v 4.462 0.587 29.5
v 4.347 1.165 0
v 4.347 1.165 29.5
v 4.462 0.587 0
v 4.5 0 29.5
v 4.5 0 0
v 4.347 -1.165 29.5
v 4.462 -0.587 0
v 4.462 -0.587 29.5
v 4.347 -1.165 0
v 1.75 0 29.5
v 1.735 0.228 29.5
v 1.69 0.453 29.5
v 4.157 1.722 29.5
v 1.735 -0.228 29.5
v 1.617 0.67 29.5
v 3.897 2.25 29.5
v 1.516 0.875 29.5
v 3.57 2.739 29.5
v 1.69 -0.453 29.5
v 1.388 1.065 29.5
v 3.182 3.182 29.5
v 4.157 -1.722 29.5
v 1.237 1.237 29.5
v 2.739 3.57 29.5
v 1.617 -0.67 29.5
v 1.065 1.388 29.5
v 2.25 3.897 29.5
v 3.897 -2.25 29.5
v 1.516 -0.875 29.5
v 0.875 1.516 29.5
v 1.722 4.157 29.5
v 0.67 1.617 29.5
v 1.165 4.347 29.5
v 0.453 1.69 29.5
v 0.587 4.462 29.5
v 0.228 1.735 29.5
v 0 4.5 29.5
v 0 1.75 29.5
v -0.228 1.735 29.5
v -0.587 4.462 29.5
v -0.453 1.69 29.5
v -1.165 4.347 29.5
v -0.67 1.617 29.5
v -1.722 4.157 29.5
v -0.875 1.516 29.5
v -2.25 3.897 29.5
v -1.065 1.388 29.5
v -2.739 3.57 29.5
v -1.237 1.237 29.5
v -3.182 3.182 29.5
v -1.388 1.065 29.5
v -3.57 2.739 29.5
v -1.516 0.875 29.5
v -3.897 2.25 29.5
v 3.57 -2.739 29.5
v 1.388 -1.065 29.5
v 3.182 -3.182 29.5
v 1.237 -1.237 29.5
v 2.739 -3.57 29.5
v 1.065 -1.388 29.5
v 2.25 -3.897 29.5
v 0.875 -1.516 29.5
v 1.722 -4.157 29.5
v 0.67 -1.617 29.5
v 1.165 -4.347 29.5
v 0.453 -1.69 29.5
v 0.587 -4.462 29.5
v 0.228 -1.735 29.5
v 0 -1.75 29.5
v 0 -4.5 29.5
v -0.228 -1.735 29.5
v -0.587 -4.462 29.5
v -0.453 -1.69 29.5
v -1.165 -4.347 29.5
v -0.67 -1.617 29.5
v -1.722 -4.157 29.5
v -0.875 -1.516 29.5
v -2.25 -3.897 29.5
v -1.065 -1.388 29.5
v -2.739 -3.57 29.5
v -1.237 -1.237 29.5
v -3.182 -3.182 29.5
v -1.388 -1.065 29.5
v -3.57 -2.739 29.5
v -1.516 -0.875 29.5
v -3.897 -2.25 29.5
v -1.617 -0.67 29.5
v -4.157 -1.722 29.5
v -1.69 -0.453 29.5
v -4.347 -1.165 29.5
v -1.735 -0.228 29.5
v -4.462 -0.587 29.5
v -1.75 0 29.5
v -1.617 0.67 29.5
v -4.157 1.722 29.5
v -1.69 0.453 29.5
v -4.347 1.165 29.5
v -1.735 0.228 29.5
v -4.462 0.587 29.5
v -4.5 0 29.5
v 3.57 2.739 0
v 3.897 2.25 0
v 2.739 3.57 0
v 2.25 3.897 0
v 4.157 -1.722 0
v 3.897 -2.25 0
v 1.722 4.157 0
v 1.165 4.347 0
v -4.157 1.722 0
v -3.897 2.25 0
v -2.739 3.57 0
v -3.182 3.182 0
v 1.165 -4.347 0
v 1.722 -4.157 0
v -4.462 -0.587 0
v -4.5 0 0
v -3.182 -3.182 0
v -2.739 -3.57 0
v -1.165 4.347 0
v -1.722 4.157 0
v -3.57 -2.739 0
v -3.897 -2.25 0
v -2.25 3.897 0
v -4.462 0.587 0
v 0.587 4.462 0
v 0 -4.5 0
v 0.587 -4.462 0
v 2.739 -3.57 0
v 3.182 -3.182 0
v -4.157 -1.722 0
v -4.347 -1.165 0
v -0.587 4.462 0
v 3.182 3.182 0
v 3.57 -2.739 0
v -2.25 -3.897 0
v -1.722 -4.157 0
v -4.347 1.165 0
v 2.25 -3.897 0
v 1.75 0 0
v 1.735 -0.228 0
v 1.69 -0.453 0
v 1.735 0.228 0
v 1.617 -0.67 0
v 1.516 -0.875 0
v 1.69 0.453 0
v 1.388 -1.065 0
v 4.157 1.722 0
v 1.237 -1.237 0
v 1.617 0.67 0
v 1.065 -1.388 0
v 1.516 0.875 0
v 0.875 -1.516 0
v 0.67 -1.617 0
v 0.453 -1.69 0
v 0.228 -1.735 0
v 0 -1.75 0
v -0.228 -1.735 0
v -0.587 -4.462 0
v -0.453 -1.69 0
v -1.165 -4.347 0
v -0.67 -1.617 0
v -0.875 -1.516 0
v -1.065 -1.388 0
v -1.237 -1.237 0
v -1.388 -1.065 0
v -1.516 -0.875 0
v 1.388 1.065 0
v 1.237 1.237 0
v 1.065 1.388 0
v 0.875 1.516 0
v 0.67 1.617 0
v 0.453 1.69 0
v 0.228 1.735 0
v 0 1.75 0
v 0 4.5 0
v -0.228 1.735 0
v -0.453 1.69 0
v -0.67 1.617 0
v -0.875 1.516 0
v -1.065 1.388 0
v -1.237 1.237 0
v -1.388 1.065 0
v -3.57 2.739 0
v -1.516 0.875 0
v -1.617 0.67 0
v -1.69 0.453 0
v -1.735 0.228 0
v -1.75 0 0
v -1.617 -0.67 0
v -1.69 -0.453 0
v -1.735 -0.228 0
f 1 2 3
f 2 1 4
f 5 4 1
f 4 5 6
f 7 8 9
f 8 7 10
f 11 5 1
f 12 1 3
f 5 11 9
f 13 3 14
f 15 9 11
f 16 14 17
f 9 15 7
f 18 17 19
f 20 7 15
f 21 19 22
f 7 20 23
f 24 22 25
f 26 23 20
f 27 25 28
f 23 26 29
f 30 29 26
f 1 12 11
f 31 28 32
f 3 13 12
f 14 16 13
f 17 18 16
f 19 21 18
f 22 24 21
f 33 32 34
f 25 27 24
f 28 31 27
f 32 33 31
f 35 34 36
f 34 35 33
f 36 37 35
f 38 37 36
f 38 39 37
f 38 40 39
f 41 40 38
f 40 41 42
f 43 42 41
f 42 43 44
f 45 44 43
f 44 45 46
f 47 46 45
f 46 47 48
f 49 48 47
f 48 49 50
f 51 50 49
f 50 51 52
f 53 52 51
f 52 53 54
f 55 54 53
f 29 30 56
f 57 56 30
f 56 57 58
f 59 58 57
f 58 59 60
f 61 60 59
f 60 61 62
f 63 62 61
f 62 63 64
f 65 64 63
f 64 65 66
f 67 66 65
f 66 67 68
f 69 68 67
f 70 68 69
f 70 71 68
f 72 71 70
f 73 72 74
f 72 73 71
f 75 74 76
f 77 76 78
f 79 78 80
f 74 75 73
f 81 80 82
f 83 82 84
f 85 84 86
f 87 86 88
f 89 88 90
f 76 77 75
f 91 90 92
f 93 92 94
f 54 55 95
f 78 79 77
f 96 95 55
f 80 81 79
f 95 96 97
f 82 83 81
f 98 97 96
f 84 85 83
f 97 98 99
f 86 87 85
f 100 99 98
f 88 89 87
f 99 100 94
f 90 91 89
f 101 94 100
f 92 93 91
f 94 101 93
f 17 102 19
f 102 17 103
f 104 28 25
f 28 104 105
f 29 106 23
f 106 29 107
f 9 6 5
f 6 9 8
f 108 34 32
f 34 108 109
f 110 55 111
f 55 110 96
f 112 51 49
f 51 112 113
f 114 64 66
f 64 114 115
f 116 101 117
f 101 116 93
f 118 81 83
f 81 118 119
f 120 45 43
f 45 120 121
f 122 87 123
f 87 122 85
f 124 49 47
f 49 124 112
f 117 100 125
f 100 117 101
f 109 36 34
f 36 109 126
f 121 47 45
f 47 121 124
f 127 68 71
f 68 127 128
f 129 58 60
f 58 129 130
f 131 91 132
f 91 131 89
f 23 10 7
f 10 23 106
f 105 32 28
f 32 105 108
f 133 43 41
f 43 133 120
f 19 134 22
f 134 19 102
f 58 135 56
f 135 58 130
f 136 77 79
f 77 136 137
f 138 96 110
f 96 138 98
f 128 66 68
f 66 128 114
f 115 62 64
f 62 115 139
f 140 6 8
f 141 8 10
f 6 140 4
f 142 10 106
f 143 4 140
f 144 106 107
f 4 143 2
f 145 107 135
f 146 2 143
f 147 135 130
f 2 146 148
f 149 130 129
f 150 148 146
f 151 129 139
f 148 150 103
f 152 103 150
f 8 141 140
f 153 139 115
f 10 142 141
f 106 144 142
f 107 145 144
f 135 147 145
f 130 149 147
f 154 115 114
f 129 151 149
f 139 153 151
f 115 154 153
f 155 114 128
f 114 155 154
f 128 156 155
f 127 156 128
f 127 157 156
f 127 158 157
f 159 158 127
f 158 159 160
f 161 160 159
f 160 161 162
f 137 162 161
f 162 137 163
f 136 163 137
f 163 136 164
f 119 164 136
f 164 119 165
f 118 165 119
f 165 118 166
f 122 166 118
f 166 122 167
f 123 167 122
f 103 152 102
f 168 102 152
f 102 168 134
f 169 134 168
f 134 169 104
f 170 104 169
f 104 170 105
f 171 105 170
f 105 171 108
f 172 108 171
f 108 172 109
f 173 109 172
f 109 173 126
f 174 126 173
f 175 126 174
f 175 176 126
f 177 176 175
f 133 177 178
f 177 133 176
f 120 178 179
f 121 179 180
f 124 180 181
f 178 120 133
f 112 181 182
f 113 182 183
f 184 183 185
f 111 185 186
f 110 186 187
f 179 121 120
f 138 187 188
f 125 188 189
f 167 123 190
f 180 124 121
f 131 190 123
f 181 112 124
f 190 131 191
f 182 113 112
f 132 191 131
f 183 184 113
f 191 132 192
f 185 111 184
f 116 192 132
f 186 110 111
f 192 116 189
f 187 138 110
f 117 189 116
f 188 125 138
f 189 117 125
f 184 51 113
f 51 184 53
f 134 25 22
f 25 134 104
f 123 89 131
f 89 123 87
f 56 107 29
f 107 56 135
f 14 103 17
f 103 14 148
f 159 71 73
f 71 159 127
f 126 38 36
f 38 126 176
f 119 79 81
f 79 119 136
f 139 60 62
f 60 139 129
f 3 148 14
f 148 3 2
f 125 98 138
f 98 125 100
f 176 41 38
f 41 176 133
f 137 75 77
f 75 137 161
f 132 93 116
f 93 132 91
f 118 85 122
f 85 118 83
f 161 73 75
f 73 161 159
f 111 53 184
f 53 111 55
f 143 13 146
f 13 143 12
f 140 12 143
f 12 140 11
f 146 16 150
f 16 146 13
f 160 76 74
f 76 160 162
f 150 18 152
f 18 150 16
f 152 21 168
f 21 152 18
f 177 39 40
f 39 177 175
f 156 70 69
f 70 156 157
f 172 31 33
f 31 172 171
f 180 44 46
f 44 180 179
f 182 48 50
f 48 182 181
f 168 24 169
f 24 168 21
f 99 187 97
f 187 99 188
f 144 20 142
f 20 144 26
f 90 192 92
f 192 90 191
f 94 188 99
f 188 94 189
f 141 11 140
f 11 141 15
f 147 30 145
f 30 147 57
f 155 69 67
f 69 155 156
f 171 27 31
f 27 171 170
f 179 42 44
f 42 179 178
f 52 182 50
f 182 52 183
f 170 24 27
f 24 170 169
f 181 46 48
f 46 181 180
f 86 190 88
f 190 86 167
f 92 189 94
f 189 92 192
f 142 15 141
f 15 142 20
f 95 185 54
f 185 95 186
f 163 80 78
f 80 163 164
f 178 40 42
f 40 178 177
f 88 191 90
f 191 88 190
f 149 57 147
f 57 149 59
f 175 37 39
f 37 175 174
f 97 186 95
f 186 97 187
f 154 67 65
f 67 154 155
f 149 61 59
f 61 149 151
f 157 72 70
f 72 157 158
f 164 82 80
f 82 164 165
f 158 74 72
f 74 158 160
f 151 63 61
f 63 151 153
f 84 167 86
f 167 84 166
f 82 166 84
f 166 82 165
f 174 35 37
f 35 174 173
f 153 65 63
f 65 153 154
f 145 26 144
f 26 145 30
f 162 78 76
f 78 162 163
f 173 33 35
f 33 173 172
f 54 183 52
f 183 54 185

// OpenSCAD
// file: parameters.scad
// =============================================================================
// Gen-CE — nightly 2026-10-14 (physics_scorer, honest magpylib watts)
// Wire-saver stator for the Gen-CD rotors: only 3.9 mm of copper (≈9 layers), magnet faces ≈6.5 mm apart, peak Bz ≈0.70 T. Uses ≈300 m of wire (≈80 m less than Gen-CD) and still clears Gen-BX; shares every rotor part, the steel, the frame rods and the bearing bridges with Gen-CD, so the two stators swap on the same machine.
// Clocking 0 deg (magnets N facing S) + D-flat keyed bore + index notch + flip-symmetric hole map.
// Windable 2-piece bobbin; turns = physics_scorer turns_fit; copper only between flanges.
// Steel back-iron: 2× Ø198 × 4.76 mm (3/16") mild-steel discs (steel_backiron_disc.dxf); magnets sit ON the steel
// (through-pockets) -> score with --back-iron. Night 2026-10-14.
// =============================================================================
topology            = "dual_rotor";

// --- Wire / winding (physics_scorer winding-fit) -------------------------------
wire_awg            = 26;
wire_od             = 0.45;     // insulated OD mm (bare 0.405)
fill_realistic      = 0.65;     // insulated-wire area / window (DENSE layered wind with a jig; scorer cap 0.65)
turns               = 288;       // = physics_scorer turns_fit (do NOT raise)
coil_former_type    = "bobbin";
coil_core_inset     = 18.10;     // radial copper build: hub = copper boundary inset by this
wind_build_axial    = 0.0;      // nothing proud of the flanges
wind_build_radial   = 0.0;

// --- Bobbin (base + lid) ---------------------------------------------------------
coil_id_r           = 64.00;    // copper boundary sector
coil_od_r           = 104.00;
span_deg            = 26.87;    // = pitch - 2*asin((wall+0.85)/coil_id_r) -> >=1.2 mm stator web
former_web          = 3.90;     // copper height between flanges (TALL copper: steel keeps Bz up)
flange_t            = 0.80;     // >= 0.8 mm FDM wall rule (tall winds push on the flanges)
wall                = 0.80;     // flange lip beyond copper
former_bare_h       = former_web + 2 * flange_t;
coil_envelope_h     = former_bare_h + 2 * wind_build_axial;
tab_w               = 7.0;
tab_len             = 7.0;
tab_h               = former_bare_h / 2;
pin_d               = 1.9;      // 1.75 mm filament locating pin
coil_mount_r        = coil_od_r + 0.2 + 4.0;
lead_y              = 1.6;
lead_slot_w         = 0.9;
lead_groove_d       = 0.6;

// --- Gap -------------------------------------------------------------------------
run_clear           = 0.50;     // rotor face -> flange
gap_spacer_h        = run_clear + wind_build_axial;
m2m                 = coil_envelope_h + 2 * run_clear;   // rotor face to rotor face (= gap_sleeve length)

// --- Stator ----------------------------------------------------------------------
coil_stations       = 12;
bay_clear           = 0.35;     // 0.35 mm: bobbin BASES print IN PLACE inside the stator bays (print-in-place gap), then pop out
stator_thick        = former_bare_h;                        // bobbins flush both faces
stator_od           = 229.0;
shaft_clear_stator  = 14.0;     // stator is static; gap sleeve OD 12 spins inside
stator_ir           = 58.85;    // ANNULAR stator: open centre (nested one-plate pack); inner rim 4.0 mm

// --- Rotor(s) --------------------------------------------------------------------
magnet_Br           = 1.43;     // N52
magnet_d_large      = 20.0;
magnet_h_large      = 5.0;      // one O20x5 per pocket
magnet_h_small      = 5.0;      // unused: no O5 pockets in this kit
halbach_magnetisation = "none";  // NO O5 assist magnets in this kit (scan: they lower the 4-pole score)
rotor_b_same_axis   = true;     // same-index magnets share one axis: N faces S across the gap
large_pocket_d      = 20.3;
small_pocket_d      = 5.3;
pocket_h            = 5.00;     // THROUGH the carrier: magnet back face sits on the steel disc (FLUSH seat: carrier = magnet height, magnet face level with the rotor face)
large_n             = 8;
R_large             = 86.0;
small_r_list        = [];       // no O5 pockets
carrier_od          = 198.0;
ring_ir             = 72.85;    // RING rotor: PLA magnet ring r ring_ir..carrier_od/2 (steel disc = structural rotor)
hub_flange_od       = 74.0;     // separate rotor_hub flange (inside the ring, flush with the ring face)
csk_d               = 6.6;      // M3 countersunk head pocket (ISO 10642 head 6.0 nominal) on the stator face
csk_depth           = 1.55;     // = (csk_d - m3_clear) / 2: 90 deg cone; head sits 0.3 mm below the face
n_seg               = 8;        // magnet-carrier ARCS per rotor (segmented carrier)
seg_deg             = 360 / n_seg;
seg_start           = -22.5;   // arc edge angle (between pocket 0 and its clamp bolt)
seg_kerf_deg        = 0.4;      // gap between neighbouring arcs on the steel
carrier_thick       = pocket_h;
hub_h               = 12.0;     // > steel_t + insert: radial set-screw clears the steel
hub_od              = 24.0;     // slim hub so the M4 brace rods fit at R~18 inside the coil ring
hub_insert_d        = 4.0;      // M3 heat-set insert, radial, bears on the D-flat
rotor_b_offset_deg  = 0.0;      // CLOCKING: magnets directly opposite
shaft_key           = "dflat";
dflat_depth         = 0.5;      // 8 mm shaft with 0.5 mm flat (7.5 across flat)
index_notch_d       = 3.0;

// --- Steel back-iron (buyable laser-cut) -------------------------------------------
steel_t             = 4.76;      // mild steel thickness (image method ignores it; sized from steel_flux.py so the return path stays well below saturation)
steel_center_hole   = 26.0;     // slips over the rotor hub (OD 24)
steel_od            = carrier_od;   // steel disc OD = rotor carrier OD

// --- Modular MAX interface ----------------------------------------------------------
shaft_bore          = 8.35;
dflat_x             = 4.0 - dflat_depth + (shaft_bore - 8.0) / 2;
bearing_d           = 21.85;
bearing_h           = 7.2;
m3_clear            = 3.5;
bolt_r_inner        = 30.0;     // M3 steel-disc clamp bolts (inside the magnet ring)
bolt_n_inner        = 4;
bolt_inner_angles   = [0, 90, 180, 270];
bolt_r_outer        = 86.0;     // second M3 steel-disc clamp ring
bolt_outer_angles   = [22.5, 67.5, 112.5, 157.5, 202.5, 247.5, 292.5, 337.5];
flange_bolt_r       = 109.5;     // frame rods: OUTSIDE the rotor OD (rotors spin inside them)
flange_bolt_n       = 4;
flange_bolt_offset  = 45.00;    // between coil stations -> never cuts a lead groove/tab
brace_r             = 18.0;
brace_d             = 4.3;      // temporary M4 jack rods (assembly only)
brace_n             = 4;
brace_angles        = [45, 135, 225, 315];          // flip-symmetric

spacer_pad_od       = 14.0;
spacer_pad_id       = m3_clear;
endbell_od          = 229.0;
endbell_thick       = 8.0;
endbell_shaft_clear = 10.0;
collar_h            = 10.0;
standoff_od         = 9.0;
frame_standoff_h    = run_clear + carrier_thick + hub_h + collar_h + 2.0;
sleeve_od           = 12.0;
plate_max_mm        = 410;

$fn = 64;
// main file
// Gen-CE — frame standoff tube between stator and an endbell, on each M3 frame rod (outside rotor OD).
// Print x4. Height = frame_standoff_h (rotor + steel + hub + collar + running clearance).
include <parameters.scad>;
$fn = 48;
difference() {
    cylinder(d=standoff_od, h=frame_standoff_h);
    translate([0, 0, -0.1]) cylinder(d=m3_clear, h=frame_standoff_h + 0.2);
}
